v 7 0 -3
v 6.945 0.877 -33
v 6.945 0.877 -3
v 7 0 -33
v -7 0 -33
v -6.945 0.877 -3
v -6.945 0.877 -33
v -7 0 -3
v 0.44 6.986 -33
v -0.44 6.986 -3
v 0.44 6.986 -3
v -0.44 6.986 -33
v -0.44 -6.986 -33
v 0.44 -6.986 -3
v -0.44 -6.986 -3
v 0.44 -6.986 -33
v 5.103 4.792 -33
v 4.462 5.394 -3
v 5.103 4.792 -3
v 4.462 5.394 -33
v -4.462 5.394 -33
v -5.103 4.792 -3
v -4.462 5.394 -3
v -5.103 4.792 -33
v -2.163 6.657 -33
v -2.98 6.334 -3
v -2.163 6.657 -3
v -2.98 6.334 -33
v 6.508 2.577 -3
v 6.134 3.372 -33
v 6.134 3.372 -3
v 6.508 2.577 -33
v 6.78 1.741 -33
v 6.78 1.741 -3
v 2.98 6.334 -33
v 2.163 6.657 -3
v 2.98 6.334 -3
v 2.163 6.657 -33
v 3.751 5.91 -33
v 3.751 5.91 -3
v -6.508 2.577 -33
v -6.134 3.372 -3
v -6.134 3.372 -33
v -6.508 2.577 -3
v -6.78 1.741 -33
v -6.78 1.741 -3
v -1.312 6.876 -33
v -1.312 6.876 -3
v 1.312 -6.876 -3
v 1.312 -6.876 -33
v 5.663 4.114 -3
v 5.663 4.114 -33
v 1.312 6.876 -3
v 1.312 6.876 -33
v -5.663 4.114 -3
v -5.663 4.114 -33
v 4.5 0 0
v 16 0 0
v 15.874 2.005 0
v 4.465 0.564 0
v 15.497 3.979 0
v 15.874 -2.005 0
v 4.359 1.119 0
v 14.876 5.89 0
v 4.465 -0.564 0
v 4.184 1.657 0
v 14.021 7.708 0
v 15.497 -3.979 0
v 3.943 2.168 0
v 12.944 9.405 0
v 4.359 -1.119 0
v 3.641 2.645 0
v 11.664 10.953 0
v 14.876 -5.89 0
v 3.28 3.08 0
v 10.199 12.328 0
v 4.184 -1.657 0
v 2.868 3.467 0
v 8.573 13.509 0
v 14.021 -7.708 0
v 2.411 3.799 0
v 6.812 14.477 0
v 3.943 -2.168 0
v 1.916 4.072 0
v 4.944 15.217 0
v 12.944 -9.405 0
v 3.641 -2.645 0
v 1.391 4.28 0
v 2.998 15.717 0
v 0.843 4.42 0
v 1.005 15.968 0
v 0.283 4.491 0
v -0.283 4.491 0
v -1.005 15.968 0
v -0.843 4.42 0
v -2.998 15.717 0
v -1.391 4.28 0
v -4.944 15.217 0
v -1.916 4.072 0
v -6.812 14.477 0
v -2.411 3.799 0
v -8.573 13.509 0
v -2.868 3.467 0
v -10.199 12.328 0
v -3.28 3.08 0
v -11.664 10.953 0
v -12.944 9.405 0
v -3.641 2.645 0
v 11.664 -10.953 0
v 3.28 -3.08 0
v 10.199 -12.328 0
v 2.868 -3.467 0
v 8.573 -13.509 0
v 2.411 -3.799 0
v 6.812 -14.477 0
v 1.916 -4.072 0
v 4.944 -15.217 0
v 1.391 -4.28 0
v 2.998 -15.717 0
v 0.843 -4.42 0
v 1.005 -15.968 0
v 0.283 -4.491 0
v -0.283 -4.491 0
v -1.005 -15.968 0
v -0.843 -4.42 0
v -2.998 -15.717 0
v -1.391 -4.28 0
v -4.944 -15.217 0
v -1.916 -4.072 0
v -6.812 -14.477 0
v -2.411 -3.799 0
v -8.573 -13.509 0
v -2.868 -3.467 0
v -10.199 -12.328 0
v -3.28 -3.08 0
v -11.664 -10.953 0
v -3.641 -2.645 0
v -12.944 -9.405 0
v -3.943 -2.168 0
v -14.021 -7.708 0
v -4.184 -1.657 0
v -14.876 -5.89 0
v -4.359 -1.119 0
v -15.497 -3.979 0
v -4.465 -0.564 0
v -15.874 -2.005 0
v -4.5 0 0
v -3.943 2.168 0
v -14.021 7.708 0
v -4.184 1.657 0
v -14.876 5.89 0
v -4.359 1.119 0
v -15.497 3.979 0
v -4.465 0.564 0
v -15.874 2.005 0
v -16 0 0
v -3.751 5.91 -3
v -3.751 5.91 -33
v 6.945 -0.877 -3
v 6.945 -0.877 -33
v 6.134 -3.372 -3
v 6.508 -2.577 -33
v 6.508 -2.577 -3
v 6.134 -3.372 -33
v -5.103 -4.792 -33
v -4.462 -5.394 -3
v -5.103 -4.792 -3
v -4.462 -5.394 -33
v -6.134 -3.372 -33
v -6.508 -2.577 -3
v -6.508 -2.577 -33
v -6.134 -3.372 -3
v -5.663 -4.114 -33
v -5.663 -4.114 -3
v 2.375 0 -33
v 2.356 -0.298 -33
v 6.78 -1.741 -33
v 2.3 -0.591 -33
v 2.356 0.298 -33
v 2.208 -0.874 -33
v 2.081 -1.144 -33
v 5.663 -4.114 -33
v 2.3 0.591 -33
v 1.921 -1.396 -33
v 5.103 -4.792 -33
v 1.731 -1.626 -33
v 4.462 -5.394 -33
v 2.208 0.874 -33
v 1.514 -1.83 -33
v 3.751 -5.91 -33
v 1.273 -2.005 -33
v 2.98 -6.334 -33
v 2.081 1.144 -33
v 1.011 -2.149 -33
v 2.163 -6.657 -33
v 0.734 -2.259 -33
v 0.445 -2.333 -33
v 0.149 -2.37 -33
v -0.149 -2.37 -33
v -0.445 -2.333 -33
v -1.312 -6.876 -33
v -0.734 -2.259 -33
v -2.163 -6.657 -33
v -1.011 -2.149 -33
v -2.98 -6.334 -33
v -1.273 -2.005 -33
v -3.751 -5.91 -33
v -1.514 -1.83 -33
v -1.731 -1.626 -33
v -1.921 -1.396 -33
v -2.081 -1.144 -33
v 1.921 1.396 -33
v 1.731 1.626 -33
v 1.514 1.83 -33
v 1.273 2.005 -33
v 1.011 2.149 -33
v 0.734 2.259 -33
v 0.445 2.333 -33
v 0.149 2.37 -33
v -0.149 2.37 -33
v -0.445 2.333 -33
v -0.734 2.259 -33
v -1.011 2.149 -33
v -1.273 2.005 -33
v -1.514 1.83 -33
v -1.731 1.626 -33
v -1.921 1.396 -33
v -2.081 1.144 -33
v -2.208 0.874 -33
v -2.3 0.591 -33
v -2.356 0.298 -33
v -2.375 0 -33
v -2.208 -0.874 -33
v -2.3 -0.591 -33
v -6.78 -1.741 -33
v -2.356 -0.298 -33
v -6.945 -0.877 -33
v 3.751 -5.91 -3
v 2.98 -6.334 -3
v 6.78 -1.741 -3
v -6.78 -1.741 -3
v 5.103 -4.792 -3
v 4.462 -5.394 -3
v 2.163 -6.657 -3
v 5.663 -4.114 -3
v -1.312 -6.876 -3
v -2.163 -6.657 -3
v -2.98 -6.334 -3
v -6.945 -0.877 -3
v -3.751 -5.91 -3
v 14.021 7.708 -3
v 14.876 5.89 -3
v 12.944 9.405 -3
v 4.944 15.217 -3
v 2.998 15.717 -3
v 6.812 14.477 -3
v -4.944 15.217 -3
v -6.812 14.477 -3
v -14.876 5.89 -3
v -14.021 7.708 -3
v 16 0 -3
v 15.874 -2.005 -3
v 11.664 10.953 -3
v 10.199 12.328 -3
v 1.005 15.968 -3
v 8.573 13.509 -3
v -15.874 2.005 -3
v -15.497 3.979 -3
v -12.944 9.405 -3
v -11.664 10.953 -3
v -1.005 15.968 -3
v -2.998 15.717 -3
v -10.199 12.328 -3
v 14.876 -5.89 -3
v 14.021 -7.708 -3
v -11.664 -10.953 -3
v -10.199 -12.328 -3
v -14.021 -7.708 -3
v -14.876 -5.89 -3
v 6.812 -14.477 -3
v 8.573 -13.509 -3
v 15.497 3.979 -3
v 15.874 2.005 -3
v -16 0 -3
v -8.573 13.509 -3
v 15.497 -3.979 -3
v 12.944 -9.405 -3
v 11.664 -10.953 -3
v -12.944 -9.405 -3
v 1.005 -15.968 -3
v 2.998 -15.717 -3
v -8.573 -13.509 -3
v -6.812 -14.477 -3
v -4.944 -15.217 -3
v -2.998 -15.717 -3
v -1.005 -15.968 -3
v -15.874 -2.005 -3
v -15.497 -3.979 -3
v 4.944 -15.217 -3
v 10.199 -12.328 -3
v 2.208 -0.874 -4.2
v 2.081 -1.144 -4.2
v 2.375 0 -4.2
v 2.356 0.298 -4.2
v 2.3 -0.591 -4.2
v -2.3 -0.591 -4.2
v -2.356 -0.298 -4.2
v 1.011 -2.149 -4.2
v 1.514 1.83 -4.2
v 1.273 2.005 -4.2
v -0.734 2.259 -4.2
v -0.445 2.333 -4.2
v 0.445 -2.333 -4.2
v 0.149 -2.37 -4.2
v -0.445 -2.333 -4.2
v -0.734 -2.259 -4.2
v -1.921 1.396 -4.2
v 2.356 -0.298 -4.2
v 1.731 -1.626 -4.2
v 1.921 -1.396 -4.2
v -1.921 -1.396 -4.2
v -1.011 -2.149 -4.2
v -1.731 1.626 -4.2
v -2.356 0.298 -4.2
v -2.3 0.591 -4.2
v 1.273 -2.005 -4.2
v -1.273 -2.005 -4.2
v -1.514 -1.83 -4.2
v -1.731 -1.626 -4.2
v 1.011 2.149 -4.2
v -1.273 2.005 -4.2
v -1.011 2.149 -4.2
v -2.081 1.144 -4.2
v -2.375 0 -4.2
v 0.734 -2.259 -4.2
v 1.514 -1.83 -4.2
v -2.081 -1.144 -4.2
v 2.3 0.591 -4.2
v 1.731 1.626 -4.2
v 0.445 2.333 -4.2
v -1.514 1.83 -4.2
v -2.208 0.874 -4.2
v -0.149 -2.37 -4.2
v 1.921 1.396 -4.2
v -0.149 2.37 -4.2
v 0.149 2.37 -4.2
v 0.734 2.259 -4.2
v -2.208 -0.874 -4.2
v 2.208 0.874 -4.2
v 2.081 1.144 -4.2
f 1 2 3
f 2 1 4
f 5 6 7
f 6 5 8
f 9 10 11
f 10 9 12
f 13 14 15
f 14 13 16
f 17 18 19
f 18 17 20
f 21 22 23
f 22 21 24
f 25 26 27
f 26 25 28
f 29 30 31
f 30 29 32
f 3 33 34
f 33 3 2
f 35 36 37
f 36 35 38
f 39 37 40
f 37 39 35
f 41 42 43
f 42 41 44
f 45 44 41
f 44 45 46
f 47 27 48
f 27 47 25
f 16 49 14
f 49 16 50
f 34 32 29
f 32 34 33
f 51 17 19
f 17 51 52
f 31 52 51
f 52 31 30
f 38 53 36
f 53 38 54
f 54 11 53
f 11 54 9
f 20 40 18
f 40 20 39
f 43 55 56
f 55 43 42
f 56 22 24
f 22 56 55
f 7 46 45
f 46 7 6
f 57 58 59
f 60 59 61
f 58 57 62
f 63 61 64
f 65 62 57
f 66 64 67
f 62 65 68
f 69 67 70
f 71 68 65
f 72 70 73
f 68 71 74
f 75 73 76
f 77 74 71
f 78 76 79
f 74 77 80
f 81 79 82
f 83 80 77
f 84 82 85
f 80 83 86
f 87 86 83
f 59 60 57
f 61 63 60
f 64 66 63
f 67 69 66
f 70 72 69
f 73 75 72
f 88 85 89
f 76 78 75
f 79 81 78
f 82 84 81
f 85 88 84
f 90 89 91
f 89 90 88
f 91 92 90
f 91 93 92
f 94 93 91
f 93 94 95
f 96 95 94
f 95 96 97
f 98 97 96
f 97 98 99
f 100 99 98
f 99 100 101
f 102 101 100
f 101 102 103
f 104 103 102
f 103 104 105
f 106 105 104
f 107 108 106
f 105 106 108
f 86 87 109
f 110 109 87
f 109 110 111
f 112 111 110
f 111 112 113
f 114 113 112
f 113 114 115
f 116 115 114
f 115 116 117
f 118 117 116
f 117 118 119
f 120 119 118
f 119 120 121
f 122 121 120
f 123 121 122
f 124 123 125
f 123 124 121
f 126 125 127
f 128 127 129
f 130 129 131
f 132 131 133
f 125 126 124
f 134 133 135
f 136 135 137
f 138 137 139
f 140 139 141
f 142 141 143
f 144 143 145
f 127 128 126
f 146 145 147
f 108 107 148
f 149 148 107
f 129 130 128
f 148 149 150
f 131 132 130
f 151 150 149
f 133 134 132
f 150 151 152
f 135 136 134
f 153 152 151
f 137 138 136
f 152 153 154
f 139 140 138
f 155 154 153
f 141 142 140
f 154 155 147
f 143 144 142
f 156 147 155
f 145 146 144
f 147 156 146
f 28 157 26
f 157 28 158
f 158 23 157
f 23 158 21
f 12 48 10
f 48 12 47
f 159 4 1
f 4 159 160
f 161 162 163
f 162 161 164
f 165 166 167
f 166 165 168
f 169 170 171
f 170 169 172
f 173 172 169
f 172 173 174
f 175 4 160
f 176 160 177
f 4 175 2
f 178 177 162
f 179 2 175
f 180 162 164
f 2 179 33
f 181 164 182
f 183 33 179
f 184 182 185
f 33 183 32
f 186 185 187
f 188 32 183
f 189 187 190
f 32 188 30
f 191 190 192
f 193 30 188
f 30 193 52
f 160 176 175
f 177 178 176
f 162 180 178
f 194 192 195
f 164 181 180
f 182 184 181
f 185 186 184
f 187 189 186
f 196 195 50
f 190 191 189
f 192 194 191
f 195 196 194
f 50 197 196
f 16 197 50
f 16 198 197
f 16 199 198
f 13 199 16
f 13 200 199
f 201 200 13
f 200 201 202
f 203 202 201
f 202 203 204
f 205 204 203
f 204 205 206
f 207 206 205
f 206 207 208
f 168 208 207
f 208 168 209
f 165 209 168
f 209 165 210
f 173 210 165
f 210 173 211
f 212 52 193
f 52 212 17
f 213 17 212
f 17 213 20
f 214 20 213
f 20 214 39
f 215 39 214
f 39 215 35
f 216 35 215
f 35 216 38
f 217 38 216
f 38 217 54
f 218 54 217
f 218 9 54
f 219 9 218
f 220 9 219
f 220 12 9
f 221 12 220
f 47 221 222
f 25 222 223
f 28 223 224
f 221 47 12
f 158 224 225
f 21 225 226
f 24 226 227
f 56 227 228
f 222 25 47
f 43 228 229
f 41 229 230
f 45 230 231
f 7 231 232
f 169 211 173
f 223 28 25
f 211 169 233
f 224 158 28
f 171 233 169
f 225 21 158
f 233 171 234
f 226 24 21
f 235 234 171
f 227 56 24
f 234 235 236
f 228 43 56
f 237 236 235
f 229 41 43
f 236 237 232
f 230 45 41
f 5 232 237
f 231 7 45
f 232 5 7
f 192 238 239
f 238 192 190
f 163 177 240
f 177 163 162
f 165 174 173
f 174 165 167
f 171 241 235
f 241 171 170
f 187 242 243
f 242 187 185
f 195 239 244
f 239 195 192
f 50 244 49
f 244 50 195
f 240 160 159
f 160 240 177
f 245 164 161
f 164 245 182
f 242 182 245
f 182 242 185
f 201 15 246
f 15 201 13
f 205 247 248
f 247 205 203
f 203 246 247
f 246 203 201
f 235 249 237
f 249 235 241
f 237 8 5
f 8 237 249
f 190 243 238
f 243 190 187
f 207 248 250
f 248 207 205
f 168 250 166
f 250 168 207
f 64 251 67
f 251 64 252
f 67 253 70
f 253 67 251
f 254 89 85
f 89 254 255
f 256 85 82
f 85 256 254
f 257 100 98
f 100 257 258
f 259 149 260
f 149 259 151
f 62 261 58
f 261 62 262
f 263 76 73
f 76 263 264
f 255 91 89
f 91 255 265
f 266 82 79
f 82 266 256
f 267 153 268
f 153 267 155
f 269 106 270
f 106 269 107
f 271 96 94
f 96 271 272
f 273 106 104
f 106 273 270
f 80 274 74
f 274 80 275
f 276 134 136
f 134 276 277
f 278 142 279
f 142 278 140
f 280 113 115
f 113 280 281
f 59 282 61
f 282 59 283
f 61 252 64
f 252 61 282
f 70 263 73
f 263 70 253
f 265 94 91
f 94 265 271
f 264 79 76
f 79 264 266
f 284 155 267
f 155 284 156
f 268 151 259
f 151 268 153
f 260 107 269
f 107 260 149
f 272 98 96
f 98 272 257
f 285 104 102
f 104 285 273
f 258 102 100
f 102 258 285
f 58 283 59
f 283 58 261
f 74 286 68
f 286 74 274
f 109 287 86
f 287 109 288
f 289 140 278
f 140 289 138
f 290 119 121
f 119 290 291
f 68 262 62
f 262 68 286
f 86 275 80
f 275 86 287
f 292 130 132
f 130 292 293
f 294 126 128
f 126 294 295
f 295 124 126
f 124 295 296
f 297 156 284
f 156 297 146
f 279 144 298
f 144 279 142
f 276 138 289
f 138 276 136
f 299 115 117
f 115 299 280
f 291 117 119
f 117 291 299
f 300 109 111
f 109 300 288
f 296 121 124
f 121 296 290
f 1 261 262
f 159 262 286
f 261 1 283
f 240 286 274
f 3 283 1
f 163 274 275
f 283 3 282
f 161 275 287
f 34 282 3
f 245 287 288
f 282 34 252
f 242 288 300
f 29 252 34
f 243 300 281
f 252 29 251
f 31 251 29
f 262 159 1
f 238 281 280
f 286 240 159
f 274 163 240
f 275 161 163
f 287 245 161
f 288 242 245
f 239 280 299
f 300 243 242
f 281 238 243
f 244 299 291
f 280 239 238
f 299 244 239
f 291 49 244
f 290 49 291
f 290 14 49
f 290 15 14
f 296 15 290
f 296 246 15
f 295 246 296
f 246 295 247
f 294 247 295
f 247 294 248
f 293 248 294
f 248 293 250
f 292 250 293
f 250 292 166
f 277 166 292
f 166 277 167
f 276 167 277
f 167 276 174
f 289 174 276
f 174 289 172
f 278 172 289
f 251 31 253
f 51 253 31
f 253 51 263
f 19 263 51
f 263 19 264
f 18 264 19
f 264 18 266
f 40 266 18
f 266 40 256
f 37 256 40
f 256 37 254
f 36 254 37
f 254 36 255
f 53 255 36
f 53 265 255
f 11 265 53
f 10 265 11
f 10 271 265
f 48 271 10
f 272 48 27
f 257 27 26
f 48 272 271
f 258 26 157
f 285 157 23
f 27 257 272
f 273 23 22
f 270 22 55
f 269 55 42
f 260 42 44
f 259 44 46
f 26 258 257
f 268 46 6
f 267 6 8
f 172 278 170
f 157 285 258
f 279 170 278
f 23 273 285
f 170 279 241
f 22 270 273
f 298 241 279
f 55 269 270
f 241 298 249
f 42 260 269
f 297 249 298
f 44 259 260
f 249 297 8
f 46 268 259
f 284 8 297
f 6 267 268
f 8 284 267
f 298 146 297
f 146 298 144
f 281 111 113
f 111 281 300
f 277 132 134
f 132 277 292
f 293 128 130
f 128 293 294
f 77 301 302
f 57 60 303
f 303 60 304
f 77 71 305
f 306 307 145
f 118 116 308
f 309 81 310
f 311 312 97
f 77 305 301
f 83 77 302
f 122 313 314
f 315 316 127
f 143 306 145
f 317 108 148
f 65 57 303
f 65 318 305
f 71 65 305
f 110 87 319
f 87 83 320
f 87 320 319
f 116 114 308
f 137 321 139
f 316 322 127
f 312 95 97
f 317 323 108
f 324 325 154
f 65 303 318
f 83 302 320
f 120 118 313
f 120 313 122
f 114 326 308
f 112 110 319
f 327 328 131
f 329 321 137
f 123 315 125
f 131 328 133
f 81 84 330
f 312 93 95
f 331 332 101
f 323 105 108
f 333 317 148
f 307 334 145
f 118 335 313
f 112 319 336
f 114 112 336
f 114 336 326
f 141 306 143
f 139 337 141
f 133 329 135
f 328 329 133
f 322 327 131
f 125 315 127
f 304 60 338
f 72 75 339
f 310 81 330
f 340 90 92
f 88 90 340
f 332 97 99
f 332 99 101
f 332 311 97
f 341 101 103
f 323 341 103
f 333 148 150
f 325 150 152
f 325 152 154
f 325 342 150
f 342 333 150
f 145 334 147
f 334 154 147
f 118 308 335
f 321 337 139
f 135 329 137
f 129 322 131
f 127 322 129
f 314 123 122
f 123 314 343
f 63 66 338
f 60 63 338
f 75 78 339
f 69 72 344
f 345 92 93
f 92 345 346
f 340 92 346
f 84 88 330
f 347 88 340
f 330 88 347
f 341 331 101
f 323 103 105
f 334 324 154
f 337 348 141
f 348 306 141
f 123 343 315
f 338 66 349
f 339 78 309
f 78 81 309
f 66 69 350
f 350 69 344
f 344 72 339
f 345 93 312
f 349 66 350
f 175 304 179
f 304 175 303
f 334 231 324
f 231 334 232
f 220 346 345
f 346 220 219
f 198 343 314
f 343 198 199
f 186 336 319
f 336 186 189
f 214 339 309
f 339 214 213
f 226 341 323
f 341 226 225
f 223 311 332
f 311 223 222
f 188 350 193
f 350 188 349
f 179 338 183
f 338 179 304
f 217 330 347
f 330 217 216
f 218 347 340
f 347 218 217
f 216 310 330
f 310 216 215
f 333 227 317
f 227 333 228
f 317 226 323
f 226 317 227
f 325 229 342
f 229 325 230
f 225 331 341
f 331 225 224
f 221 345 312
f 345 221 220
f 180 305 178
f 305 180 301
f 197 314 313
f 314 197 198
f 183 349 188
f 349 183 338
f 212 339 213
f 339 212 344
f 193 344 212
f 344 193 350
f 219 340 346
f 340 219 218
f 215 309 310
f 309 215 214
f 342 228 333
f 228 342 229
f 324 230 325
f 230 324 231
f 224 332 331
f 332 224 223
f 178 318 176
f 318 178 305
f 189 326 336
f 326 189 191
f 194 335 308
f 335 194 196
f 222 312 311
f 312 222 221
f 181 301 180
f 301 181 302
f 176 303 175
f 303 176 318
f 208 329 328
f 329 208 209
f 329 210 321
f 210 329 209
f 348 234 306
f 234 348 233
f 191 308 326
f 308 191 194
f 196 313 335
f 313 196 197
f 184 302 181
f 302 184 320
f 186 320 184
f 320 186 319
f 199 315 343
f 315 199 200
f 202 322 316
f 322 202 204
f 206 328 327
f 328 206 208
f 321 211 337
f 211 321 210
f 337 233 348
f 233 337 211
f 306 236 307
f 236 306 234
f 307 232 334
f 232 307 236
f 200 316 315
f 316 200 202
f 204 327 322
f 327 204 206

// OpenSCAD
$fn = 50;


difference() {
	union() {
		translate(v = [0, 0, -33.0000000000]) {
			cylinder(h = 33, r = 7.0000000000);
		}
		translate(v = [0, 0, -3.0000000000]) {
			cylinder(h = 3, r = 16.0000000000);
		}
	}
	union() {
		translate(v = [0, 0, 0]) {
			rotate(a = [0, 0, 0]) {
				difference() {
					union() {
						#translate(v = [0, 0, -33.0000000000]) {
							cylinder(h = 33, r = 2.2500000000);
						}
						#translate(v = [0, 0, -4.2000000000]) {
							cylinder(h = 4.2000000000, r = 7.0000000000, r1 = 2.3750000000, r2 = 4.5000000000);
						}
						#translate(v = [0, 0, -33.0000000000]) {
							cylinder(h = 33, r = 2.3750000000);
						}
						#translate(v = [0, 0, -33.0000000000]) {
							cylinder(h = 33, r = 2.2500000000);
						}
					}
					union();
				}
			}
		}
	}
}
